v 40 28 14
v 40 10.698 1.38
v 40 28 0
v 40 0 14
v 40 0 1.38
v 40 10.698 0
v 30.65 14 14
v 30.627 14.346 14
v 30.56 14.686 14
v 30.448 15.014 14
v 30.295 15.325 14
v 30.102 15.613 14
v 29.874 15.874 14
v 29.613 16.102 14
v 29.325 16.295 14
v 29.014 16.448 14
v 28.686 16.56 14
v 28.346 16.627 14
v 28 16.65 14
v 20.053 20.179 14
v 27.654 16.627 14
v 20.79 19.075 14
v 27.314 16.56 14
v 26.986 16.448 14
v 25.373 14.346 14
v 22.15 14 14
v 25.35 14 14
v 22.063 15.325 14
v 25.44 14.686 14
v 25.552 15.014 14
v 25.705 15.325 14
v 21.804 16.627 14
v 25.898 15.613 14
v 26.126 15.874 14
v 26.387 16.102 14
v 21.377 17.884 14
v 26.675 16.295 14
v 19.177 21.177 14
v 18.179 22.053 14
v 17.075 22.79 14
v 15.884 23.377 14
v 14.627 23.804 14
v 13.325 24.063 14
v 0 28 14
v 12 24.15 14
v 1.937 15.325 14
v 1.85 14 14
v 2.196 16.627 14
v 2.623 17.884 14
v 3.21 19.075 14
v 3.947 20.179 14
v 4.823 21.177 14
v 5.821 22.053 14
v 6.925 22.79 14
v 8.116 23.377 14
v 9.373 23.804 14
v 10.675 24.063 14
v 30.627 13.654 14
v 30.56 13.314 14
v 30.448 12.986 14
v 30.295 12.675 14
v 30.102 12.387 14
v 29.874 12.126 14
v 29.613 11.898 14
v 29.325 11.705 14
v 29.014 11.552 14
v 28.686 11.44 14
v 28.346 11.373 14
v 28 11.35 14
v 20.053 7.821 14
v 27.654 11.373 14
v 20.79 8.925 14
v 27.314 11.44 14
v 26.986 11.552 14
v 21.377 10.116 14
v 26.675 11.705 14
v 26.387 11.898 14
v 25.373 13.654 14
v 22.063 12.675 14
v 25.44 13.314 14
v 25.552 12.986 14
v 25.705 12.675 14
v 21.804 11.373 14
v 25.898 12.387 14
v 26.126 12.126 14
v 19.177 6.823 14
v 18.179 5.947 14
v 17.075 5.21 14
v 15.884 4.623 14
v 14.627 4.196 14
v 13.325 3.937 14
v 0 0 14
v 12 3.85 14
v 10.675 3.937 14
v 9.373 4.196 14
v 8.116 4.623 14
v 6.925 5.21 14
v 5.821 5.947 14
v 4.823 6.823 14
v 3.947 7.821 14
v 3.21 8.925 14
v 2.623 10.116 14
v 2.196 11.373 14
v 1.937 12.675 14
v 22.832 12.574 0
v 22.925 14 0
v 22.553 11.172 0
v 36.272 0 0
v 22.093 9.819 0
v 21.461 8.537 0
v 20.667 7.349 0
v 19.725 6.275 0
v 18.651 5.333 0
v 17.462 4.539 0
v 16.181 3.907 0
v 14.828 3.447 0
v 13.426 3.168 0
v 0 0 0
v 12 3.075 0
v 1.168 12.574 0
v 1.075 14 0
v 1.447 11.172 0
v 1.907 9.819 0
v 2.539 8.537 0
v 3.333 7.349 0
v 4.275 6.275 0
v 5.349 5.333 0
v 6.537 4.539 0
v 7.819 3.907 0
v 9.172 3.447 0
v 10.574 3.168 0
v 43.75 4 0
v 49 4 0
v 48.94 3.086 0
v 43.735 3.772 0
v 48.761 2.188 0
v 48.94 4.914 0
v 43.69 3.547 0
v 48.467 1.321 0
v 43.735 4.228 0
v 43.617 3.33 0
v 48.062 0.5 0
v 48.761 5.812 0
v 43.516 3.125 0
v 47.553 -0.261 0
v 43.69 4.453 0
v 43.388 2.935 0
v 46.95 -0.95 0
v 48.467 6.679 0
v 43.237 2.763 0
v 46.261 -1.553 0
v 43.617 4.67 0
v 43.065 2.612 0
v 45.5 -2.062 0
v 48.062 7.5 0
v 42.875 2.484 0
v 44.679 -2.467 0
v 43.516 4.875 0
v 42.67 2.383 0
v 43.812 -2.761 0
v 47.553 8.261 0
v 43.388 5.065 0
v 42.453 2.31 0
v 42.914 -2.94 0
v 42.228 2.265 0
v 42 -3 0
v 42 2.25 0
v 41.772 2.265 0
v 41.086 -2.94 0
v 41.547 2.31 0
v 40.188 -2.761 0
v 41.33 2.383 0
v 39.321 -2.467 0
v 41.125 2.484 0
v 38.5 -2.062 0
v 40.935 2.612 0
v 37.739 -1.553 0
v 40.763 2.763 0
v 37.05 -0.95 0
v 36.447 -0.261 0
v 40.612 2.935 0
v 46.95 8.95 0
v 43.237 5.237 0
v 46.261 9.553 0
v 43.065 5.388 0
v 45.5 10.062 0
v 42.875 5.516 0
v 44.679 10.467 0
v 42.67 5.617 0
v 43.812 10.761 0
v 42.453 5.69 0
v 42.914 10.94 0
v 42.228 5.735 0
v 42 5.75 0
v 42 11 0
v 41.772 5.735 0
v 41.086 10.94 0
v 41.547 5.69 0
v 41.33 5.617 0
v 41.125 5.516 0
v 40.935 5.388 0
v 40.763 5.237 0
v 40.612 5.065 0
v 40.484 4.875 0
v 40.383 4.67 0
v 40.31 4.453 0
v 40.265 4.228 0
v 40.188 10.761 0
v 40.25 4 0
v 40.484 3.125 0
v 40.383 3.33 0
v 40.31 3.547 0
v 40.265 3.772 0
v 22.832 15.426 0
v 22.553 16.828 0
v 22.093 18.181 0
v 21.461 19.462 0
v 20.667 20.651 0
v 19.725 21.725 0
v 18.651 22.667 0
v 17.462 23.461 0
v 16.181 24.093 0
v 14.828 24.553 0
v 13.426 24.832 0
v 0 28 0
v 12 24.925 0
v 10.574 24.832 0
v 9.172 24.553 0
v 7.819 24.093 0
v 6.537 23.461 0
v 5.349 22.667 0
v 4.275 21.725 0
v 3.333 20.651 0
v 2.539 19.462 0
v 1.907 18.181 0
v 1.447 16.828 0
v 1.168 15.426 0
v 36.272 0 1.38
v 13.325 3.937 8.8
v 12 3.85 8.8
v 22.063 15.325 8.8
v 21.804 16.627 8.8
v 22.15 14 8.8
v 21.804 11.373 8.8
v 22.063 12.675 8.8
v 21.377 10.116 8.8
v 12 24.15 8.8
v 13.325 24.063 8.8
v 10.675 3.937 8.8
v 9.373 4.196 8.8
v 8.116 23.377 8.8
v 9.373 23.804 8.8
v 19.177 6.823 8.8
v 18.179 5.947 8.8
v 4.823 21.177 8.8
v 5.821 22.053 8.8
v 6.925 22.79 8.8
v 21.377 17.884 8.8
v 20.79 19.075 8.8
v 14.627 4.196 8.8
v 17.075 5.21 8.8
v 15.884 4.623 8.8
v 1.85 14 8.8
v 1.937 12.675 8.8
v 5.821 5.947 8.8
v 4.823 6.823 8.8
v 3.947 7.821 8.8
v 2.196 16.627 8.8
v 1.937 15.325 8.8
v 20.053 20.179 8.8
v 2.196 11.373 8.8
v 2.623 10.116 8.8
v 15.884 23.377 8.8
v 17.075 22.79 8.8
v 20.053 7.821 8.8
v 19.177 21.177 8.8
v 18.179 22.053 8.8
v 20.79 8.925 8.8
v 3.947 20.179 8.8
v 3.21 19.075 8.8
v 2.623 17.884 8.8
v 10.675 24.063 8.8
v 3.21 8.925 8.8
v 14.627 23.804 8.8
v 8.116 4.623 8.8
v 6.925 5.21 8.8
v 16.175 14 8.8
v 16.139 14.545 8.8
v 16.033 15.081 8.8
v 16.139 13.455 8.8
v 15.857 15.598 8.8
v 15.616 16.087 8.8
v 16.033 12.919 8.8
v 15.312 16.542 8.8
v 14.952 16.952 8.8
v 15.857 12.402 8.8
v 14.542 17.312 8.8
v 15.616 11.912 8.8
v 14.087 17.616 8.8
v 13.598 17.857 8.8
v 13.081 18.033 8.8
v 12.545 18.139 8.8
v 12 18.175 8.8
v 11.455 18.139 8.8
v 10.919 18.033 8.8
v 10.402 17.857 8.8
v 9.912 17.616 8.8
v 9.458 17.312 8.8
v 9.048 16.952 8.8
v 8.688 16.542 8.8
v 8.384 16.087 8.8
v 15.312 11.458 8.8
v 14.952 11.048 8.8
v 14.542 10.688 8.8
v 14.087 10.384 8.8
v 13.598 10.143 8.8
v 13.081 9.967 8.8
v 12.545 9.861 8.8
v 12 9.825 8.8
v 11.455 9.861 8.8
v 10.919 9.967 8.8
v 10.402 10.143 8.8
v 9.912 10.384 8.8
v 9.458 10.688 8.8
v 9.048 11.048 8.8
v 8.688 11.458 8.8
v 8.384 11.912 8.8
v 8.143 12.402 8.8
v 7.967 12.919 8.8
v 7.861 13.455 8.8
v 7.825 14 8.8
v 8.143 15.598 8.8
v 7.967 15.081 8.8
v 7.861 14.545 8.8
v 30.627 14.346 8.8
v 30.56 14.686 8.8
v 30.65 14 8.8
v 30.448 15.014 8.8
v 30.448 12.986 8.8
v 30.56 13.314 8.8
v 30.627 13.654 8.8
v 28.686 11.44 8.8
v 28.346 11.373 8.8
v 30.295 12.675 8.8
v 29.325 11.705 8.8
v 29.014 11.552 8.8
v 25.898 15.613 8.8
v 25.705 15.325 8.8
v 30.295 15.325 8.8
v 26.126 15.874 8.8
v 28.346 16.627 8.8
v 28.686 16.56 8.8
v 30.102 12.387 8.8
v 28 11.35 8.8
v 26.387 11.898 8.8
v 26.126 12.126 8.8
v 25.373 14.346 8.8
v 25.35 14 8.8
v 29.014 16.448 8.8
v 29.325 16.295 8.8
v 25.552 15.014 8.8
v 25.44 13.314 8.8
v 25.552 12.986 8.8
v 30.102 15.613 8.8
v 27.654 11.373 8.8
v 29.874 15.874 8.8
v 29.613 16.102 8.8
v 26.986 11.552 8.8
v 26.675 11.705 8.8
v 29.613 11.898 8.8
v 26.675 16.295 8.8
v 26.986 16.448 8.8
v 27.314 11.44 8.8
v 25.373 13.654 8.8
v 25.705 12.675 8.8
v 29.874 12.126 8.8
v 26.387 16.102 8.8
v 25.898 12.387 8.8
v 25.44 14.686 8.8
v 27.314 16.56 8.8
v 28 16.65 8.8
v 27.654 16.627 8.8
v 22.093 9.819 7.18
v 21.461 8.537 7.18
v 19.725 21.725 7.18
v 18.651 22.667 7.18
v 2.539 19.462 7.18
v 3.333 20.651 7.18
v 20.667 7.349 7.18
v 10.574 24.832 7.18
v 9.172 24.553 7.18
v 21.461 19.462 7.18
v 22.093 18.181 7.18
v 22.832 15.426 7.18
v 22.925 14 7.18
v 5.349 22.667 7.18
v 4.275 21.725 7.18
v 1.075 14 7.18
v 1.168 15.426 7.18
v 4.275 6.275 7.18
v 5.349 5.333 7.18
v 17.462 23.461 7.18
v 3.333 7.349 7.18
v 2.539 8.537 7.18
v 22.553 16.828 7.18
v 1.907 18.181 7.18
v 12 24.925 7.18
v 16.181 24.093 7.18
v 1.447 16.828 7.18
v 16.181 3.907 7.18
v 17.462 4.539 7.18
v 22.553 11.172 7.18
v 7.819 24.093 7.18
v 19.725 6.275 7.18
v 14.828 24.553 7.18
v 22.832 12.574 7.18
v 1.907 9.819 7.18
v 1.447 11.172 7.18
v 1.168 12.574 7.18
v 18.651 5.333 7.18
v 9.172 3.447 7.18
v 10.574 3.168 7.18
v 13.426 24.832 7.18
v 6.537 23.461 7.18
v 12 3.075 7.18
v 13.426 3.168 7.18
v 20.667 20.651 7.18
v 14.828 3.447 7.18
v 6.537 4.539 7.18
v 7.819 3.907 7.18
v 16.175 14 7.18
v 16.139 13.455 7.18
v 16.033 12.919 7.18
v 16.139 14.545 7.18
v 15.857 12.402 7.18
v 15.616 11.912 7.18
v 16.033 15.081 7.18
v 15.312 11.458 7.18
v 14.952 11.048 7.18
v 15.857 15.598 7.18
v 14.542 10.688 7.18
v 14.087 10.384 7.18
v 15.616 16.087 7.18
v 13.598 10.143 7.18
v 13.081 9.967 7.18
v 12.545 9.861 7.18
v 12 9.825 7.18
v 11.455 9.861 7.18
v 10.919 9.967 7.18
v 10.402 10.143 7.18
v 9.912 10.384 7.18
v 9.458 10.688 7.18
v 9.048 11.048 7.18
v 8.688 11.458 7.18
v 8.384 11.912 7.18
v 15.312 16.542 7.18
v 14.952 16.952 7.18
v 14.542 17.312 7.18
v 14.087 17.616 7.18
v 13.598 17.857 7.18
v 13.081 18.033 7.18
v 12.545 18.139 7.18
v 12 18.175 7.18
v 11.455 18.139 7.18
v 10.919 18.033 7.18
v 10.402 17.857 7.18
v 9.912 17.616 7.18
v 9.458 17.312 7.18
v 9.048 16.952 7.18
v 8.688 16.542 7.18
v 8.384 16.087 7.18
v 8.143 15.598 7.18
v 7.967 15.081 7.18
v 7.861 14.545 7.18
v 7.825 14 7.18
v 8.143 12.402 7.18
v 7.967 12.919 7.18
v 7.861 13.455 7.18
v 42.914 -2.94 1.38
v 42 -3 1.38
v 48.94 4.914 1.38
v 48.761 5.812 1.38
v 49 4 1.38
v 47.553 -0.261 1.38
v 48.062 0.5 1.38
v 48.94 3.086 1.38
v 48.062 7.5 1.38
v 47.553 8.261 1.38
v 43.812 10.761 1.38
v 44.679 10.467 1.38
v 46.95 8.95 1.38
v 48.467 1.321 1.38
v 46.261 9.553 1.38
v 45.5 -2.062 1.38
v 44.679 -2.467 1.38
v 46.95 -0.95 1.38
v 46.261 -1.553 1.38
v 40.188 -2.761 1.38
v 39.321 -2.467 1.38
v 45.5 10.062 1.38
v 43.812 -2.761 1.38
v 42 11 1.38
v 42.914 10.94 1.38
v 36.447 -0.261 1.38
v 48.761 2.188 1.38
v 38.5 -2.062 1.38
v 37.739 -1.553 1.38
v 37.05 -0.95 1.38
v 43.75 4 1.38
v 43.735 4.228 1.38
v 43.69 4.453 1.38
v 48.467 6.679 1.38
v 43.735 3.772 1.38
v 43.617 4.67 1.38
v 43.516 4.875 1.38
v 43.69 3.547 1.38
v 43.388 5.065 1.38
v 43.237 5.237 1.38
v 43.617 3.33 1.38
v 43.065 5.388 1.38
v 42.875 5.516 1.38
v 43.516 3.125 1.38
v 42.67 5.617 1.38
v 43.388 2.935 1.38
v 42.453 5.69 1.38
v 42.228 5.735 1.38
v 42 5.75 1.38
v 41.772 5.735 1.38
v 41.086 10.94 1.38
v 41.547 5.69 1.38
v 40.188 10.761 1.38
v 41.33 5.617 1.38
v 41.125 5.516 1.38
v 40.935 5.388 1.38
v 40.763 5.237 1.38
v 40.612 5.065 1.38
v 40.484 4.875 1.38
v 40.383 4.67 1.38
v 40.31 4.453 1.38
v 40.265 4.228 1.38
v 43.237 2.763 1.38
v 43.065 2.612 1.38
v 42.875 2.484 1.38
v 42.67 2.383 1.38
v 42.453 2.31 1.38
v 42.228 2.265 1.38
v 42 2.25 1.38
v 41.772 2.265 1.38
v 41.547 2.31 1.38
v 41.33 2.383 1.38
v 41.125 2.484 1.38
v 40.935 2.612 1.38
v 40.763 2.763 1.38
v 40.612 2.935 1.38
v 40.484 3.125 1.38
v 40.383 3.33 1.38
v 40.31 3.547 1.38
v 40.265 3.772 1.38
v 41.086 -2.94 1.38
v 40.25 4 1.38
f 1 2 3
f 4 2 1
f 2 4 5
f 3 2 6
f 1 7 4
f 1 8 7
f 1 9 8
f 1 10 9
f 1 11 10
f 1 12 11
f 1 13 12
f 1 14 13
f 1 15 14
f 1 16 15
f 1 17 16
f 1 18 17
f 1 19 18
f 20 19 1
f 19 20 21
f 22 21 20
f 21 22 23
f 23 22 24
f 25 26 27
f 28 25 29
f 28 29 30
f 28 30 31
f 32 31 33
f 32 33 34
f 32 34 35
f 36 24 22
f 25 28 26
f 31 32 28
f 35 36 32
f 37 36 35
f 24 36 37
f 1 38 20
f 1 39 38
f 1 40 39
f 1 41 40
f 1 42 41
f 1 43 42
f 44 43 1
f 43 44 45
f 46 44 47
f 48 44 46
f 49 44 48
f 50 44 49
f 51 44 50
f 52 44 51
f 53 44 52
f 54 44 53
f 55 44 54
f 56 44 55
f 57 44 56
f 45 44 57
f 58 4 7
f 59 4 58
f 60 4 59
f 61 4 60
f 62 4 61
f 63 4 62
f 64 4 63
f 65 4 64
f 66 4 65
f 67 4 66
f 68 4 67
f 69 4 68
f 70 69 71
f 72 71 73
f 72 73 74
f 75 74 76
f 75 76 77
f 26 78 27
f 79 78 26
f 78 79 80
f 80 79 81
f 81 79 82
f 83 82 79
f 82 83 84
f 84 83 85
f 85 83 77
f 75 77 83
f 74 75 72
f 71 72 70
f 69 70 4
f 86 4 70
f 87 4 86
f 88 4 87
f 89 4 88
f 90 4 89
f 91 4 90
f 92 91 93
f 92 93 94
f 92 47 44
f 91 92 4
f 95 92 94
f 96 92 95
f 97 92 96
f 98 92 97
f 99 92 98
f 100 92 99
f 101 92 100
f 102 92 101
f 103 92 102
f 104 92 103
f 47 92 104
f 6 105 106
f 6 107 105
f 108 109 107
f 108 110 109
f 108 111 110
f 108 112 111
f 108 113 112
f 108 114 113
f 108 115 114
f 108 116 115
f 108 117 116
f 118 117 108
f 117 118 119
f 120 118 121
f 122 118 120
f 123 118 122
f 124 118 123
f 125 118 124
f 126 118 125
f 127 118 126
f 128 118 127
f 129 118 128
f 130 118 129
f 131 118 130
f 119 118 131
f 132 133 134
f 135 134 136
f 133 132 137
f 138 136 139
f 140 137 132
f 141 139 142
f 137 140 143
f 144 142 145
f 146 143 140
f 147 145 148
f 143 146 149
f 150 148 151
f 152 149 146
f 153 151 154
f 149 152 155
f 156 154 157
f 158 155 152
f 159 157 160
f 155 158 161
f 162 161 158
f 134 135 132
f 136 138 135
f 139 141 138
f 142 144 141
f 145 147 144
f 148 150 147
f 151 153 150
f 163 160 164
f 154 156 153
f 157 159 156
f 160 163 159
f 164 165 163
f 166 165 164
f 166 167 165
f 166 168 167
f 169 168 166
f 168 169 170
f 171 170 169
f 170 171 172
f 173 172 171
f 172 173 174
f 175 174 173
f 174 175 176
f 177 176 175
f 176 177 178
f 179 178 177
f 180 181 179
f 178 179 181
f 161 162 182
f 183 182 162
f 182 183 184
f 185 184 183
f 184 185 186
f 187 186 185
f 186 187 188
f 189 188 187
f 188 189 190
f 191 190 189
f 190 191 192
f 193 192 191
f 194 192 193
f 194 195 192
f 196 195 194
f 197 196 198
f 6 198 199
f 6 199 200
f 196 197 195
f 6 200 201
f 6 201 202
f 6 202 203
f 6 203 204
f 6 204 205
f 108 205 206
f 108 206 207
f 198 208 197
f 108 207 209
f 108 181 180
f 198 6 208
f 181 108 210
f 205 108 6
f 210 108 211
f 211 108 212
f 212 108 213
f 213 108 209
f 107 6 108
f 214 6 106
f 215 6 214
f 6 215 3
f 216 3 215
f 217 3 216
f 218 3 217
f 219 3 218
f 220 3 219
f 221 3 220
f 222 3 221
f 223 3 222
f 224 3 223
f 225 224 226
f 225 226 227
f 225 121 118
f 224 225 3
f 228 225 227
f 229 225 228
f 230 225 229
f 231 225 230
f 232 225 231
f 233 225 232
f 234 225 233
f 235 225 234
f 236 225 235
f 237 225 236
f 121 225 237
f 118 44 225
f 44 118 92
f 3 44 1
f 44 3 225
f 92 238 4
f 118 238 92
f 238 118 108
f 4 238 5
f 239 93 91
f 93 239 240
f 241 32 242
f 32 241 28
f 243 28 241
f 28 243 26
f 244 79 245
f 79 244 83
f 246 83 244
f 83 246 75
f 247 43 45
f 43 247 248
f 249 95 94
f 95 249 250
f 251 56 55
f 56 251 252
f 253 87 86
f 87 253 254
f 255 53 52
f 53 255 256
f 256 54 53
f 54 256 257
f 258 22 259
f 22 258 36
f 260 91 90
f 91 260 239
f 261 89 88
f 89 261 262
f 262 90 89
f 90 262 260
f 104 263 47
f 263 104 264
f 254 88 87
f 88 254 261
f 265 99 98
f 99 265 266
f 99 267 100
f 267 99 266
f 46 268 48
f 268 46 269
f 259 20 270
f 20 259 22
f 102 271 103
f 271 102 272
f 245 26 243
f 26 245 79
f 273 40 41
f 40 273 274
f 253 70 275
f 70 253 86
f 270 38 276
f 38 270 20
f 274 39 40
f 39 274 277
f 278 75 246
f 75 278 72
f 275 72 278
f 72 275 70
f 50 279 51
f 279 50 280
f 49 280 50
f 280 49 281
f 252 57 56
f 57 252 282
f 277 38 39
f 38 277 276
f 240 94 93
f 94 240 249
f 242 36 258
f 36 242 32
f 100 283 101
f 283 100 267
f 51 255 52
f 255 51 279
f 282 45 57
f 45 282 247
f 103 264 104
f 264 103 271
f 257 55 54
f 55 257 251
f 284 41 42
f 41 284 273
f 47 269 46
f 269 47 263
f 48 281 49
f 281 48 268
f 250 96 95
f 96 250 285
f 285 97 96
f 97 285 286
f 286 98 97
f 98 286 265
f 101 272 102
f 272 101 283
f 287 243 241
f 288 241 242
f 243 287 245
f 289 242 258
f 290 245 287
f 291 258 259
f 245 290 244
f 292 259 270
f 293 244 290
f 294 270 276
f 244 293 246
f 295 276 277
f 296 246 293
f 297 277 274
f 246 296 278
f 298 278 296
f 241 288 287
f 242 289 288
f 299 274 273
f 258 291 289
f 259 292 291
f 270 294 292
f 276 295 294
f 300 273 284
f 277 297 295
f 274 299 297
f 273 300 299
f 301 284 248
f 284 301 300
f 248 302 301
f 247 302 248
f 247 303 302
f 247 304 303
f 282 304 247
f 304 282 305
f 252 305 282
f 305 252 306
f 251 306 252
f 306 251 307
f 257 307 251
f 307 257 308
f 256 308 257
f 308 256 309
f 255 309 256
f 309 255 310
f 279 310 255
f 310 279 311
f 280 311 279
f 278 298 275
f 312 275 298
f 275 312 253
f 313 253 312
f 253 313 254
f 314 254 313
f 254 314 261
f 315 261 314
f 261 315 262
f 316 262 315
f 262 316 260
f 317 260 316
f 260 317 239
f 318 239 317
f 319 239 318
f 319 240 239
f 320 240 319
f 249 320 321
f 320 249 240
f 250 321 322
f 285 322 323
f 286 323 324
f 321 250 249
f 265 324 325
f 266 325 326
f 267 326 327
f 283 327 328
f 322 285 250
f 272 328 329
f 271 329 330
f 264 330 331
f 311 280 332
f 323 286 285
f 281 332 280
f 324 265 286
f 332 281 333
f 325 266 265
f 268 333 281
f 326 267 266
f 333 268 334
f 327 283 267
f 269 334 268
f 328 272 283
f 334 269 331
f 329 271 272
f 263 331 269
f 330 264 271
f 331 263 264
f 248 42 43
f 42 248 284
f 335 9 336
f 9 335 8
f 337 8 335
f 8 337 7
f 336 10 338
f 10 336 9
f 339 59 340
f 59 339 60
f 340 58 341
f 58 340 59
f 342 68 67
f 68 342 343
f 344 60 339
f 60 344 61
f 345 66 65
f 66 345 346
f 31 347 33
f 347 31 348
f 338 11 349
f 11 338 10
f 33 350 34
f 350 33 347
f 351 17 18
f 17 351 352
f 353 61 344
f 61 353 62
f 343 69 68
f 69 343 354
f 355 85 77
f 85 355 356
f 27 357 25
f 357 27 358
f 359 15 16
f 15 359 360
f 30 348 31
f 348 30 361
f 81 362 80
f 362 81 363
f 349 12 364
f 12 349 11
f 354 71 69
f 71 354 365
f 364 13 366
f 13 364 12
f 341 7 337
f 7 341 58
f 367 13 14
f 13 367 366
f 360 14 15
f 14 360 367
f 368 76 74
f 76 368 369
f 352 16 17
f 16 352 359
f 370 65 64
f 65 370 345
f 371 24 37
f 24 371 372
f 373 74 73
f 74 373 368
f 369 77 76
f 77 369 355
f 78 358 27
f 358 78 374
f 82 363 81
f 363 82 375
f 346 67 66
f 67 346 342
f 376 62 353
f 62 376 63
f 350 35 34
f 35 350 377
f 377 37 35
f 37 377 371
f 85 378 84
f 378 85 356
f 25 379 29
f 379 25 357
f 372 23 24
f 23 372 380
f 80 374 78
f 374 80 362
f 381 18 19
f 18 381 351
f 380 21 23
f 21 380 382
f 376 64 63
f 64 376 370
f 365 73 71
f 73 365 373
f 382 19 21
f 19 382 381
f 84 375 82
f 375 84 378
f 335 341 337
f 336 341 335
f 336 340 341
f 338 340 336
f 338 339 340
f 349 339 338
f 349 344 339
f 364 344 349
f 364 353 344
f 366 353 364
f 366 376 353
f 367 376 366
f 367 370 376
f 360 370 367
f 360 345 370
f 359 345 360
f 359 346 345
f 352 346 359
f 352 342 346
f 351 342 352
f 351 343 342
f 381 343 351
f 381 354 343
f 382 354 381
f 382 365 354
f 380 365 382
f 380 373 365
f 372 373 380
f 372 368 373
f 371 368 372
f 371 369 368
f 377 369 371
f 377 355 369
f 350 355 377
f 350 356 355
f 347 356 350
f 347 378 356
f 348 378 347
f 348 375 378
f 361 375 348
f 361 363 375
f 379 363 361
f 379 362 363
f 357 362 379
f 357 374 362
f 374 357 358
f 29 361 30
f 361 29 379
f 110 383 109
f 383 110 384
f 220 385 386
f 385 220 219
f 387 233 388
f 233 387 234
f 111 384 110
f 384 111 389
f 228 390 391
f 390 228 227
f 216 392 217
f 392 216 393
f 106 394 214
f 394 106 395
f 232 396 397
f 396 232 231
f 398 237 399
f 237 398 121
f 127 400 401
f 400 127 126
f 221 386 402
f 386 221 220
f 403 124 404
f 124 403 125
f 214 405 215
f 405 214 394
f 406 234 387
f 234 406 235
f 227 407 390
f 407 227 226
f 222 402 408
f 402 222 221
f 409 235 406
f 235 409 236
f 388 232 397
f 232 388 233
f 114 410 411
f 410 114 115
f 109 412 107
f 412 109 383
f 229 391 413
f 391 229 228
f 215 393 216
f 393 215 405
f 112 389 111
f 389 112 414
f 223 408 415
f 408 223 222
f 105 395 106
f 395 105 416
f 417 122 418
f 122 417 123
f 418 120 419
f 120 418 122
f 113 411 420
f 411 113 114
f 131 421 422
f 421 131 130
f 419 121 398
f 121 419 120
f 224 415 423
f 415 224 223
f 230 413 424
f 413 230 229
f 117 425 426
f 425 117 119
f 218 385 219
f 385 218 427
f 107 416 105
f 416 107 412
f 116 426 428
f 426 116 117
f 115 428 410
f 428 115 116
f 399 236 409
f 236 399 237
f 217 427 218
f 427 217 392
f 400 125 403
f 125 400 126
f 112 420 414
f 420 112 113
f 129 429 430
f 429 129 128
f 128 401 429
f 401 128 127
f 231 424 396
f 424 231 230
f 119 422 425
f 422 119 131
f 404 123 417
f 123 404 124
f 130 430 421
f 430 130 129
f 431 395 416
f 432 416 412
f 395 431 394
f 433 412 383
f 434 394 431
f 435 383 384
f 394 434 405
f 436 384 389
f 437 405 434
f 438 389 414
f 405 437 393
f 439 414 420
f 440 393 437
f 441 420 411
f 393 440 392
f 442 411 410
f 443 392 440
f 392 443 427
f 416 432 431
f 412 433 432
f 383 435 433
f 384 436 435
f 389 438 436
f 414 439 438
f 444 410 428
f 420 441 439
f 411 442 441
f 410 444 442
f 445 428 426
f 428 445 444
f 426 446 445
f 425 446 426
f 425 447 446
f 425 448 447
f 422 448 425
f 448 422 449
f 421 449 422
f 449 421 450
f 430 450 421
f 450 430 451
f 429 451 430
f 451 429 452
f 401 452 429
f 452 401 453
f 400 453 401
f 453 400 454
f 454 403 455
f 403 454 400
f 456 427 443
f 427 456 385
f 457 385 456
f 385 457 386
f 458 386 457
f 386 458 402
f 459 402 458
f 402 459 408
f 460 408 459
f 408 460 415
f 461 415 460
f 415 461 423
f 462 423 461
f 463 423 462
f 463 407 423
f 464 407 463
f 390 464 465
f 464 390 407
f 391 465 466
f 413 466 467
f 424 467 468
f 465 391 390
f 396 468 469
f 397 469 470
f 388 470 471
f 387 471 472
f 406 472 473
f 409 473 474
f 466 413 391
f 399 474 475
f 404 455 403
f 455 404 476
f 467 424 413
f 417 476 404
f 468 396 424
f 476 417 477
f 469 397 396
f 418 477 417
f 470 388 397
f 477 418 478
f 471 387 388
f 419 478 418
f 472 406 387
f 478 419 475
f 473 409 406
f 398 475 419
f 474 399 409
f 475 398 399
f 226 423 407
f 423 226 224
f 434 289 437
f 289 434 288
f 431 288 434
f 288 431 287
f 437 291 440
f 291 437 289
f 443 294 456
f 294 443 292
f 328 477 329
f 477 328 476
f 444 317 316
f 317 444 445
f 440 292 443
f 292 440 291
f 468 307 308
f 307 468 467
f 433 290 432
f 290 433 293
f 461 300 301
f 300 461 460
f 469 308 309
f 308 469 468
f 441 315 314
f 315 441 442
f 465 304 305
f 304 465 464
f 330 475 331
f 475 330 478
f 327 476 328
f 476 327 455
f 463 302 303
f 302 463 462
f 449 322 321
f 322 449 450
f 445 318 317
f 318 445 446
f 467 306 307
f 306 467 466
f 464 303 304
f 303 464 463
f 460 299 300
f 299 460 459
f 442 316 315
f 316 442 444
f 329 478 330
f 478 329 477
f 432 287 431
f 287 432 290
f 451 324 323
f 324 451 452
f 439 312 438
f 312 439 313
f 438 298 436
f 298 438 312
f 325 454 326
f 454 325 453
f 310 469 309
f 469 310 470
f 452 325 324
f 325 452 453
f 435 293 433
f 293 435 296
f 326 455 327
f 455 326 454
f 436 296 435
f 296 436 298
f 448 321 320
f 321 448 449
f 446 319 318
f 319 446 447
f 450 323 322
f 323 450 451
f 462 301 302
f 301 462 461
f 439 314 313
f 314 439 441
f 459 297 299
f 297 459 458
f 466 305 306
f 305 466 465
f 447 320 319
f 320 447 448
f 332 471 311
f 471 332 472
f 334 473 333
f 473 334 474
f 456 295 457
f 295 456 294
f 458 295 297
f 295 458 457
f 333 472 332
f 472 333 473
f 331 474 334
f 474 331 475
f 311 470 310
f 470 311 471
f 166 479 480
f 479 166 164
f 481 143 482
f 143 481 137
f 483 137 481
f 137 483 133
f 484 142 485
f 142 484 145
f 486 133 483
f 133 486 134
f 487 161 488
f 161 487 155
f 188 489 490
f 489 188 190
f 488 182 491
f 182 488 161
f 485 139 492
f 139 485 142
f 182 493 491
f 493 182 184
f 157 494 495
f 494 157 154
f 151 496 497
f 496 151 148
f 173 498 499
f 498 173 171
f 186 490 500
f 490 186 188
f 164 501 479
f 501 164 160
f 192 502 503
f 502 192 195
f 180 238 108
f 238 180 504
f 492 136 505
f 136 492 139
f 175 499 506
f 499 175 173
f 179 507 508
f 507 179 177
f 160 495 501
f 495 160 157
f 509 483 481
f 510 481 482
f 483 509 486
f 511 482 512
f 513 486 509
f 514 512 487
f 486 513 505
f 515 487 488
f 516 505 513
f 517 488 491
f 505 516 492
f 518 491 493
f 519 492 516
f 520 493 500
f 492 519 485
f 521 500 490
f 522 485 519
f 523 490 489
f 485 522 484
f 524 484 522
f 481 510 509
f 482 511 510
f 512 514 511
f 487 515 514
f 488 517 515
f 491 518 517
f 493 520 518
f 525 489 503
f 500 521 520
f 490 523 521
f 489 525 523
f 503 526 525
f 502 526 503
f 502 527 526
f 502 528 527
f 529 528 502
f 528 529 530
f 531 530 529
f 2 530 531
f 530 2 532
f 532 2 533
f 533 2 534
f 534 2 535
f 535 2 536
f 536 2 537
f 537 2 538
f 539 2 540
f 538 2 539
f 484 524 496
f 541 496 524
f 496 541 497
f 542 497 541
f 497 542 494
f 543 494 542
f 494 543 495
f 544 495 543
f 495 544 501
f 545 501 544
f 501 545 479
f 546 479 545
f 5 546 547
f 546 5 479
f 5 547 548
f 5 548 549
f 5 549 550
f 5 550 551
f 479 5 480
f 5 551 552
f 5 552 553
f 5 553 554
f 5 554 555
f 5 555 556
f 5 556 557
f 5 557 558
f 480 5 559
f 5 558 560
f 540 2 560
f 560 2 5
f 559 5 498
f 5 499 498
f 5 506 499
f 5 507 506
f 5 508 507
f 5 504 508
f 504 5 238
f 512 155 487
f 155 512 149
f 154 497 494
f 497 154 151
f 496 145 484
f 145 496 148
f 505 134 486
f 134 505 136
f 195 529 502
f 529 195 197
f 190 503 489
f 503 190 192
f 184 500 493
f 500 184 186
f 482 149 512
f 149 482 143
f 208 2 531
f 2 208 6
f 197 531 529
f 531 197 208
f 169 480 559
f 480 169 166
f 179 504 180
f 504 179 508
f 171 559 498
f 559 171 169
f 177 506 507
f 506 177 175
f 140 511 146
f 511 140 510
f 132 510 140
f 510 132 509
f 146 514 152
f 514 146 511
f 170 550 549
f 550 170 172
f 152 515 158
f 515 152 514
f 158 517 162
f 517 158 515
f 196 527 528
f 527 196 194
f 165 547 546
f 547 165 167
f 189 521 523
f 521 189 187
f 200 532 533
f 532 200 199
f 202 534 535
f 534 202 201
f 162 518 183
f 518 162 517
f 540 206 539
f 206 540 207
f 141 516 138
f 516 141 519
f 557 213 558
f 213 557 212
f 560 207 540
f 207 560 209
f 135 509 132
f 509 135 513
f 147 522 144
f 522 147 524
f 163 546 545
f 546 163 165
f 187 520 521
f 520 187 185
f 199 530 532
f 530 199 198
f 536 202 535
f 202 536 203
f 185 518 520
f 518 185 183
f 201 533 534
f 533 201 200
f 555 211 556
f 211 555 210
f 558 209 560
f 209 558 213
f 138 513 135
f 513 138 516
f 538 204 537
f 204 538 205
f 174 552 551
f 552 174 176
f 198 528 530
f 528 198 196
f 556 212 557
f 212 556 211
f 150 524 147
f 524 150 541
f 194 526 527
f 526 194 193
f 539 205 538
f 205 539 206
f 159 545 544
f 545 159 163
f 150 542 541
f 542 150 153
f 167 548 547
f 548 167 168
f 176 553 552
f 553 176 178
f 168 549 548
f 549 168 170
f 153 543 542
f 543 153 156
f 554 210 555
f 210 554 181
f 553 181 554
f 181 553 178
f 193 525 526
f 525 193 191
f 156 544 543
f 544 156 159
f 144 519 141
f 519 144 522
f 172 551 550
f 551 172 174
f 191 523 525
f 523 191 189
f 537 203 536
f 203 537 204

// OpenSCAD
// file: parameters.scad
// =============================================================================
// Gen-X Vernier flux-claw dual-gap AFPM — WOUND-AWARE (HARD GATE)
// Dual-rotor + vernier 8+8 Ø20 + Ø5 flux claws; evolution of Gen-U
// =============================================================================

wire_awg            = 26;
wire_od             = 0.45;
turns               = 135;
fill                = 0.70;
layers_per_face     = 2;
wind_build_axial    = layers_per_face * wire_od * fill;   // 0.63
wind_build_radial   = 3 * wire_od * fill;                 // 0.945

coil_id_r           = 22.0;
coil_od_r           = 57.0;
span_deg            = 25.0;     // 12 stations; vernier vs 16-pole equiv
former_web          = 2.4;
flange_t            = 0.80;
wall                = 1.2;
slot_w              = 2.4;
mount_hole          = 3.5;
tab_len             = 7.0;

former_bare_h       = former_web + 2 * flange_t;            // 4.0
coil_envelope_h     = former_bare_h + 2 * wind_build_axial; // 5.26

run_clear           = 0.75;
gap_spacer_h        = run_clear + wind_build_axial;         // 1.38
m2m                 = coil_envelope_h + 2 * run_clear;      // 6.76 (≤6.8)

coil_stations       = 12;
bay_r_in            = coil_id_r - 2.0 - wind_build_radial;
bay_r_out           = coil_od_r + 2.0 + wind_build_radial;
bay_span            = span_deg + 4.0;
bay_offset          = 2.0;
stator_thick        = former_bare_h;
stator_od           = 156.0;
shaft_clear_stator  = 36.0;
coil_mount_r        = 28.0;

// Dual rotors: 8+8 Ø20 vernier poles + 24+24 Ø5 flux claws / edge assists
large_pocket_d      = 20.3;
small_pocket_d      = 5.3;
pocket_h            = 5.2;
large_n             = 8;
R_large             = 50.0;
R_claw_inner        = 36.0;
R_claw_mid          = 50.0;
R_claw_outer        = 64.0;
carrier_od          = 152.0;
carrier_thick       = 7.5;
hub_h               = 10.0;
hub_od              = 30.0;
rotor_b_offset_deg  = 22.5;

shaft_bore          = 8.35;
bearing_d           = 21.85;
bearing_h           = 7.2;
m3_clear            = 3.5;
bolt_r_inner        = 36.0;
bolt_n_inner        = 6;
flange_bolt_r       = 72.0;
flange_bolt_n       = 6;
brace_r             = 68.0;
brace_d             = 4.3;
brace_n             = 4;

spacer_pad_od       = 14.0;
spacer_pad_id       = m3_clear;
endbell_od          = 156.0;
endbell_thick       = 8.0;
endbell_shaft_clear = 10.0;

$fn = 64;
// main file
// Gen-X fit coupon — magnet pockets + 608 + spacer height
include <parameters.scad>;
$fn = 48;
block_w = 40; block_d = 28; block_h = 14;
difference() {
    cube([block_w, block_d, block_h]);
    translate([12, block_d/2, block_h - pocket_h])
        cylinder(d=large_pocket_d, h=pocket_h + 0.2);
    translate([28, block_d/2, block_h - pocket_h])
        cylinder(d=small_pocket_d, h=pocket_h + 0.2);
    translate([12, block_d/2, -0.02])
        cylinder(d=bearing_d, h=bearing_h);
    translate([12, block_d/2, -0.1])
        cylinder(d=shaft_bore, h=block_h + 1);
}
translate([block_w + 2, 4, 0])
    difference() {
        cylinder(d=spacer_pad_od, h=gap_spacer_h);
        translate([0, 0, -0.1]) cylinder(d=spacer_pad_id, h=gap_spacer_h + 0.2);
    }
